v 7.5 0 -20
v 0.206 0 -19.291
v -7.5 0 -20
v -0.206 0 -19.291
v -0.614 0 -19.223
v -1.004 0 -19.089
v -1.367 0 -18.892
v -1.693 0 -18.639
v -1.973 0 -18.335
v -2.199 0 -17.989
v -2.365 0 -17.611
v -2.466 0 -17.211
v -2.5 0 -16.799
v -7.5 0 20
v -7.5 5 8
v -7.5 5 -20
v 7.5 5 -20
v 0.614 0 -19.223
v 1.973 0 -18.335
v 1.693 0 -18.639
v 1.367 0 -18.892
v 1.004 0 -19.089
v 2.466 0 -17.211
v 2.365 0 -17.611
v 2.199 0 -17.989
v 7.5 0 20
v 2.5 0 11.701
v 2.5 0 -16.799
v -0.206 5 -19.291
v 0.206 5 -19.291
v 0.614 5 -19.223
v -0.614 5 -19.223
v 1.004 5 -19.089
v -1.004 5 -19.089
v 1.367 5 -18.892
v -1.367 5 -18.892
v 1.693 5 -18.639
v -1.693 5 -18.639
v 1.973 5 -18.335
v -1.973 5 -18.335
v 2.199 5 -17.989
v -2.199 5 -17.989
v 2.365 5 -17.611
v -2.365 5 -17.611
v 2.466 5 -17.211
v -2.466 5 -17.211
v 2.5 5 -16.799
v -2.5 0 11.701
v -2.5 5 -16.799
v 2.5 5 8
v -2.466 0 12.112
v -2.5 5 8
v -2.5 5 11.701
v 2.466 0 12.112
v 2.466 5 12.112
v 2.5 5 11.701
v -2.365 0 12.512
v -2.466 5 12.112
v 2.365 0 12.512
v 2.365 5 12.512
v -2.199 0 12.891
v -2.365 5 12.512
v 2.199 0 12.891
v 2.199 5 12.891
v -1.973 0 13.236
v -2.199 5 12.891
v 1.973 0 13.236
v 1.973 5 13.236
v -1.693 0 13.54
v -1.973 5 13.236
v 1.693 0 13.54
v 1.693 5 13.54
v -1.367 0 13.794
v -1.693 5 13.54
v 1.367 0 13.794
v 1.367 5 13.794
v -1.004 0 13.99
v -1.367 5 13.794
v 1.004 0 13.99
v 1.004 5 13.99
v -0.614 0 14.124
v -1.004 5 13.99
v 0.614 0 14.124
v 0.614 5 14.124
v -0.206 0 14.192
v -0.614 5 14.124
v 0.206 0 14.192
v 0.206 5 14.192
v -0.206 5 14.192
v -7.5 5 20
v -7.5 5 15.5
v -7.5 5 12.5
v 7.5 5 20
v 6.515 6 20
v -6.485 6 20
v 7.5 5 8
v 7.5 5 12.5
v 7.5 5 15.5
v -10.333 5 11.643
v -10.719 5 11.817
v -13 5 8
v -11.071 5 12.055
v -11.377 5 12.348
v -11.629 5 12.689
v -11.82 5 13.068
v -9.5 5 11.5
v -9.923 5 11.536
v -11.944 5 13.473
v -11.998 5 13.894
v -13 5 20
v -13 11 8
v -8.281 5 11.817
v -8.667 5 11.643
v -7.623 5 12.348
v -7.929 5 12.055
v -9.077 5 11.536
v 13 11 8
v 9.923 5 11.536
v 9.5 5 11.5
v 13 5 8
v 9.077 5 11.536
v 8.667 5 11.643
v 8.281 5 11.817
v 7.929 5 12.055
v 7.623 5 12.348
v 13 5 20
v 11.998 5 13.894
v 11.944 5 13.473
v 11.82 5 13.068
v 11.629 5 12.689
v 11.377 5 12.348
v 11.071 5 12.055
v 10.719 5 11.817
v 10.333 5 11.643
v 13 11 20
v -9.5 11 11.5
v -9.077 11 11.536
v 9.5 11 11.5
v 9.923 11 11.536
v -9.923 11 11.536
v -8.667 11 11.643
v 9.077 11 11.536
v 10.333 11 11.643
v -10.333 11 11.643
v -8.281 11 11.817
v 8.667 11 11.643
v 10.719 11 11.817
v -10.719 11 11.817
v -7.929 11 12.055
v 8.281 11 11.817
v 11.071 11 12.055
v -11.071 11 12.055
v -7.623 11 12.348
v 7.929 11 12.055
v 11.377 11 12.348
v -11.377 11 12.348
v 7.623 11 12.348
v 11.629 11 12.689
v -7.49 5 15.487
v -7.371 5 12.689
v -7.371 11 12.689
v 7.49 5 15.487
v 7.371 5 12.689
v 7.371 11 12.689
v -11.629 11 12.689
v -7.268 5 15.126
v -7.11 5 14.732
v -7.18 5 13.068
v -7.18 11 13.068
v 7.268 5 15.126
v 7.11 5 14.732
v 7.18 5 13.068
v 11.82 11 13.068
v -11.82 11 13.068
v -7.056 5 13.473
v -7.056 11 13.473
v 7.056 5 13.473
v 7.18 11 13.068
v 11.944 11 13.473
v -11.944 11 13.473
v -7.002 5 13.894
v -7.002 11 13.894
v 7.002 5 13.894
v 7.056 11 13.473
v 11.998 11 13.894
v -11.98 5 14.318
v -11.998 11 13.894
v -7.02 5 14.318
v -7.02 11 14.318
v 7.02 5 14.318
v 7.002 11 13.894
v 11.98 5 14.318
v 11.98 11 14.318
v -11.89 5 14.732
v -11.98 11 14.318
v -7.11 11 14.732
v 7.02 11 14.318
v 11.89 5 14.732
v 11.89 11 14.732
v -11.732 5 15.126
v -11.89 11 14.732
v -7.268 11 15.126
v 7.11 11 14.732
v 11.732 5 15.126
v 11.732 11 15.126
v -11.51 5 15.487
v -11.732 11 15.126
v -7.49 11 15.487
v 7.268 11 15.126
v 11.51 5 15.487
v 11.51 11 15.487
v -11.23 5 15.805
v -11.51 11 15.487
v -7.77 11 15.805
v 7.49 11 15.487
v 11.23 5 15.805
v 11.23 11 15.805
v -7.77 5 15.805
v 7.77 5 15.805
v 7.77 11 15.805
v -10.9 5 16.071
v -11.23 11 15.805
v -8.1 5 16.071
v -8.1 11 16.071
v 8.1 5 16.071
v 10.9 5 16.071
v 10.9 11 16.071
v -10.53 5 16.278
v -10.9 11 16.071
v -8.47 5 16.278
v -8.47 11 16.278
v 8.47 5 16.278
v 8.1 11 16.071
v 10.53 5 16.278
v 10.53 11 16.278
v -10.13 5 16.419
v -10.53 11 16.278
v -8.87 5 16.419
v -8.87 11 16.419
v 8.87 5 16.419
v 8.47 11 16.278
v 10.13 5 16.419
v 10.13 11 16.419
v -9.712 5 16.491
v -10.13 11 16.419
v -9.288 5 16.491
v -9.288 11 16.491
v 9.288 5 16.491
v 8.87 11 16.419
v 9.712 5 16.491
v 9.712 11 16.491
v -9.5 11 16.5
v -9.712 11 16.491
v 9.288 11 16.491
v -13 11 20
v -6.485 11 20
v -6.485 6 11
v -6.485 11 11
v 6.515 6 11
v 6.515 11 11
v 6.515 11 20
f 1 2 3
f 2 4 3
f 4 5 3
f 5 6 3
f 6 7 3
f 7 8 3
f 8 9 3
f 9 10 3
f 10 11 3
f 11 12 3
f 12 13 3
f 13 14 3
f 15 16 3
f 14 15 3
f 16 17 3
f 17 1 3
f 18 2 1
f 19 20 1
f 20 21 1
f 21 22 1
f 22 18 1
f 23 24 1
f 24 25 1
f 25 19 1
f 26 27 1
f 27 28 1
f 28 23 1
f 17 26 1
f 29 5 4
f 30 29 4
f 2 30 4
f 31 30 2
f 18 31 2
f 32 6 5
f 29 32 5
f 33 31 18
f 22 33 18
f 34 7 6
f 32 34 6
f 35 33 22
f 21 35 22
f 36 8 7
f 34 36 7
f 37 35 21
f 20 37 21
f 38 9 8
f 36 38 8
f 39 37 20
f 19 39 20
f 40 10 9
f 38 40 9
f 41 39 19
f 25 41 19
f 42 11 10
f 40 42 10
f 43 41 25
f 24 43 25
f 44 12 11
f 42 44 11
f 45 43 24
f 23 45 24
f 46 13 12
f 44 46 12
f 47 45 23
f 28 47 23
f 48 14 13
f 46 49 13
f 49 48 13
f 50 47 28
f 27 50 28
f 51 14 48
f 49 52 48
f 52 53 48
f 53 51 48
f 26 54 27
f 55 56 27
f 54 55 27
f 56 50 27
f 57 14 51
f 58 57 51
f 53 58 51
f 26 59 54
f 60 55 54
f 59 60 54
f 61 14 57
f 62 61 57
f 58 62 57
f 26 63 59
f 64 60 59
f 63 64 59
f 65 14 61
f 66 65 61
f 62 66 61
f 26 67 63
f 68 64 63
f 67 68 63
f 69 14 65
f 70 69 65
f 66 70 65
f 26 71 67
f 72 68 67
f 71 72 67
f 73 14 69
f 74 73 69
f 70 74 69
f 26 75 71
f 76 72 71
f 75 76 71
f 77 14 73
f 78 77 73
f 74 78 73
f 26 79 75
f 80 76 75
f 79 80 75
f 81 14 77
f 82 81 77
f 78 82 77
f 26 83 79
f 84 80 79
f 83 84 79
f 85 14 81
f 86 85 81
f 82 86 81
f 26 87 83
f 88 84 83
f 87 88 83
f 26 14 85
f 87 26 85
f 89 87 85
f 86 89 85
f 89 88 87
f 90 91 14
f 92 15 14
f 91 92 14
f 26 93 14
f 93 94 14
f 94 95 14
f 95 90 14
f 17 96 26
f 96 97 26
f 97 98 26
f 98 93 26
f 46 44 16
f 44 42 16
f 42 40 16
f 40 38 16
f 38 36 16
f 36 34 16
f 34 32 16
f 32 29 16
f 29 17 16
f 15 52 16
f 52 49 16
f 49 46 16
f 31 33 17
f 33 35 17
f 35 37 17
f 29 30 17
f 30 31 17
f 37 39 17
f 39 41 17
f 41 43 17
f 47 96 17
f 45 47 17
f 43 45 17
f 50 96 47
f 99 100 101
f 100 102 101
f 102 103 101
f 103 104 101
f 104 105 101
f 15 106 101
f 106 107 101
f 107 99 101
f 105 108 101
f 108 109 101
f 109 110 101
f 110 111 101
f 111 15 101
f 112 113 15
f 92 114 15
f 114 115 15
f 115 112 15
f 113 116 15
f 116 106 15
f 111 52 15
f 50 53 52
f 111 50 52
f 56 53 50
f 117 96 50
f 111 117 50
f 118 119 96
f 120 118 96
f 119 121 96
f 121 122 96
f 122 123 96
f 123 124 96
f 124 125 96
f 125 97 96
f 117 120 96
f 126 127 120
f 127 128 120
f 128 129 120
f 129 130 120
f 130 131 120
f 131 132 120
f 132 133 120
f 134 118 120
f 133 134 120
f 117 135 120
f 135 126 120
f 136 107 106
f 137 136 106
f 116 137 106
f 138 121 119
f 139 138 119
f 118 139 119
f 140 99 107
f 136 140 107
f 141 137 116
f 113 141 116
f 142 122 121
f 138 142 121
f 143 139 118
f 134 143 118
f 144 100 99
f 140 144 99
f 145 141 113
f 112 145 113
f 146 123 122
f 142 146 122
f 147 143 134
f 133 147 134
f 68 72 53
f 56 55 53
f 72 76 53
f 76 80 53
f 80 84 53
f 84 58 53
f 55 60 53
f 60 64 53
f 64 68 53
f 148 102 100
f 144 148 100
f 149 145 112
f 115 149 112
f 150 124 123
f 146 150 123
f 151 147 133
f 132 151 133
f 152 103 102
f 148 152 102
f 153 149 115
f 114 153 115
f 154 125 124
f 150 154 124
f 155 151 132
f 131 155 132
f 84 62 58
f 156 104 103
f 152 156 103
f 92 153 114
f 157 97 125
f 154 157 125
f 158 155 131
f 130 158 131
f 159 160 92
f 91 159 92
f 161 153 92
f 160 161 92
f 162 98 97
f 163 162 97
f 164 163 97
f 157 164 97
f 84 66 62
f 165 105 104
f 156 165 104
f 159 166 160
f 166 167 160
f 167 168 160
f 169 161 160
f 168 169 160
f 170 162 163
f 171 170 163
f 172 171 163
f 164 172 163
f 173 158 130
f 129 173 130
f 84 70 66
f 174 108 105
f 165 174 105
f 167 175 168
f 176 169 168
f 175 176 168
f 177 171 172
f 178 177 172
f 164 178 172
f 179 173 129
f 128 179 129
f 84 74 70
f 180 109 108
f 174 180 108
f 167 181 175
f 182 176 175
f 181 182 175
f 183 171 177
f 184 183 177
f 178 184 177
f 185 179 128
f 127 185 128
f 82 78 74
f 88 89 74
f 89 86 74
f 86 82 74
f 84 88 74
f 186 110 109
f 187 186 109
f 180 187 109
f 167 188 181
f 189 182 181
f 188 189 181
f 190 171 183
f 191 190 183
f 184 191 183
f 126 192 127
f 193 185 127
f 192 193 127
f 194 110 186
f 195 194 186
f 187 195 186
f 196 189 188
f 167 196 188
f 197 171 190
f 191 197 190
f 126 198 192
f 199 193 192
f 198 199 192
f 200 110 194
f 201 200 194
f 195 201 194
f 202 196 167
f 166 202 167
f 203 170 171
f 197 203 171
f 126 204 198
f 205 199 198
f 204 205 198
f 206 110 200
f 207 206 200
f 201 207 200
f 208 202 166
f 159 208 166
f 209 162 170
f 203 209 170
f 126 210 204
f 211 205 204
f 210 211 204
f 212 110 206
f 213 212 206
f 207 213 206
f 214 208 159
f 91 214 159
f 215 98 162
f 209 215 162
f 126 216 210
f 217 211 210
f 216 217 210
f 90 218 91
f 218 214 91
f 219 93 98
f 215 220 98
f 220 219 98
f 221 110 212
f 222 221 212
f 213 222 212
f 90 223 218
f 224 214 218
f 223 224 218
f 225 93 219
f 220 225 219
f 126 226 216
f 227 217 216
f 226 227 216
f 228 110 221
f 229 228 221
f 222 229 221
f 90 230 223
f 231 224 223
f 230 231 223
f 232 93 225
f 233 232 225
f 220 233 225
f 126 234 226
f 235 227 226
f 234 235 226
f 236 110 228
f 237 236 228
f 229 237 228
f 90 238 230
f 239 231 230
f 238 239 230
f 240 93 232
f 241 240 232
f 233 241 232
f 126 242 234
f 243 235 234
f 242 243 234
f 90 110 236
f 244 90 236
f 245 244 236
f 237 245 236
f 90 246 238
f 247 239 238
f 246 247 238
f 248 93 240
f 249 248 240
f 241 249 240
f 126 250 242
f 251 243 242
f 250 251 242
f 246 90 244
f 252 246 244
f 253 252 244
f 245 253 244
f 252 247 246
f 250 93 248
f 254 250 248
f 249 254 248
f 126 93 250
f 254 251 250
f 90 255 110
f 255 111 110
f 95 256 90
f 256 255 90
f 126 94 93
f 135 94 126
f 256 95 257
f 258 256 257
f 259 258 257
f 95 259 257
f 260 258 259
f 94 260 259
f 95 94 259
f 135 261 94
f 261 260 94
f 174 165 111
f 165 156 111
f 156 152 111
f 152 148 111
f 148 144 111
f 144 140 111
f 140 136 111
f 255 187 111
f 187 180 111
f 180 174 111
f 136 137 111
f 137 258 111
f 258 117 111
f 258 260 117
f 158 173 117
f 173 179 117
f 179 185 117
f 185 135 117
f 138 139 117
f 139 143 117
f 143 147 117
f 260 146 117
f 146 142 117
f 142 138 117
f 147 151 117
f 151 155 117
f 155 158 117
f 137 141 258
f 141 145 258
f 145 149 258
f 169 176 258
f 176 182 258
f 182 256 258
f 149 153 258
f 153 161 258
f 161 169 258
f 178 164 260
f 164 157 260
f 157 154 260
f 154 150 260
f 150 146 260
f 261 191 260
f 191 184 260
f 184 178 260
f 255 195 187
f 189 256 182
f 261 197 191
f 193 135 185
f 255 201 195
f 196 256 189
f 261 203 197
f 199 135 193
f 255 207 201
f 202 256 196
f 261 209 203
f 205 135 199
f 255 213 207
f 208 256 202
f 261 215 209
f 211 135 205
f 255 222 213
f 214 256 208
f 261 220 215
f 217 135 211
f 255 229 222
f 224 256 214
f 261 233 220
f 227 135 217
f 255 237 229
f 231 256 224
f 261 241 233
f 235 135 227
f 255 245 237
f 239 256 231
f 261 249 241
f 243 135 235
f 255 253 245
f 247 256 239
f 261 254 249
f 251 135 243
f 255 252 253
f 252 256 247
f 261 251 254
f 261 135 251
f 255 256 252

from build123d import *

# Parameters (mm, degrees)
SKETCH_1_W          = 15
SKETCH_1_H          = 40
EXTRUDE_1_DEPTH     = 5
SKETCH_2_W          = 26
SKETCH_2_H          = 12
SKETCH_2_R          = 2.5
EXTRUDE_2_DEPTH     = 6
SKETCH_3_W          = 13
SKETCH_3_H          = 9
CUT_EXTRUDE_1_DEPTH = 5


with BuildPart() as part:
    # 草圖1 → 填料-伸長1 (new body)
    with BuildSketch(Plane(origin=(0, 0, 0), x_dir=(1, 0, 0), z_dir=(0, 1, 0))):
        Rectangle(SKETCH_1_W, SKETCH_1_H)
        with BuildLine():
            Line((2.5, 16.799309419), (2.5, -11.700690581))
            ThreePointArc((2.5, -11.700690581), (0, -14.200690581), (-2.5, -11.700690581))
            Line((-2.5, -11.700690581), (-2.5, 16.799309419))
            ThreePointArc((-2.5, 16.799309419), (0, 19.299309419), (2.5, 16.799309419))
        make_face(mode=Mode.SUBTRACT)
    extrude(amount=EXTRUDE_1_DEPTH)

    # 草圖2 → 填料-伸長2 (add)
    with BuildSketch(Plane(origin=(0, 5, 0), x_dir=(1, 0, 0), z_dir=(0, 1, 0))):
        with Locations((0, -14)):
            Rectangle(SKETCH_2_W, SKETCH_2_H)
        with Locations(Location((-9.5, -14, 0), (0, 0, 36.869897646))):
            Circle(SKETCH_2_R, mode=Mode.SUBTRACT)
        with Locations(Location((9.5, -14, 0), (0, 0, 90))):
            Circle(SKETCH_2_R, mode=Mode.SUBTRACT)
    extrude(amount=EXTRUDE_2_DEPTH)

    # 草圖3 → 除料-伸長1 (cut)
    with BuildSketch(Plane(origin=(0, 11, 0), x_dir=(1, 0, 0), z_dir=(0, 1, 0))):
        with Locations((0.015491802, -15.5)):
            Rectangle(SKETCH_3_W, SKETCH_3_H)
    extrude(amount=-CUT_EXTRUDE_1_DEPTH, mode=Mode.SUBTRACT)


solid = part.part
